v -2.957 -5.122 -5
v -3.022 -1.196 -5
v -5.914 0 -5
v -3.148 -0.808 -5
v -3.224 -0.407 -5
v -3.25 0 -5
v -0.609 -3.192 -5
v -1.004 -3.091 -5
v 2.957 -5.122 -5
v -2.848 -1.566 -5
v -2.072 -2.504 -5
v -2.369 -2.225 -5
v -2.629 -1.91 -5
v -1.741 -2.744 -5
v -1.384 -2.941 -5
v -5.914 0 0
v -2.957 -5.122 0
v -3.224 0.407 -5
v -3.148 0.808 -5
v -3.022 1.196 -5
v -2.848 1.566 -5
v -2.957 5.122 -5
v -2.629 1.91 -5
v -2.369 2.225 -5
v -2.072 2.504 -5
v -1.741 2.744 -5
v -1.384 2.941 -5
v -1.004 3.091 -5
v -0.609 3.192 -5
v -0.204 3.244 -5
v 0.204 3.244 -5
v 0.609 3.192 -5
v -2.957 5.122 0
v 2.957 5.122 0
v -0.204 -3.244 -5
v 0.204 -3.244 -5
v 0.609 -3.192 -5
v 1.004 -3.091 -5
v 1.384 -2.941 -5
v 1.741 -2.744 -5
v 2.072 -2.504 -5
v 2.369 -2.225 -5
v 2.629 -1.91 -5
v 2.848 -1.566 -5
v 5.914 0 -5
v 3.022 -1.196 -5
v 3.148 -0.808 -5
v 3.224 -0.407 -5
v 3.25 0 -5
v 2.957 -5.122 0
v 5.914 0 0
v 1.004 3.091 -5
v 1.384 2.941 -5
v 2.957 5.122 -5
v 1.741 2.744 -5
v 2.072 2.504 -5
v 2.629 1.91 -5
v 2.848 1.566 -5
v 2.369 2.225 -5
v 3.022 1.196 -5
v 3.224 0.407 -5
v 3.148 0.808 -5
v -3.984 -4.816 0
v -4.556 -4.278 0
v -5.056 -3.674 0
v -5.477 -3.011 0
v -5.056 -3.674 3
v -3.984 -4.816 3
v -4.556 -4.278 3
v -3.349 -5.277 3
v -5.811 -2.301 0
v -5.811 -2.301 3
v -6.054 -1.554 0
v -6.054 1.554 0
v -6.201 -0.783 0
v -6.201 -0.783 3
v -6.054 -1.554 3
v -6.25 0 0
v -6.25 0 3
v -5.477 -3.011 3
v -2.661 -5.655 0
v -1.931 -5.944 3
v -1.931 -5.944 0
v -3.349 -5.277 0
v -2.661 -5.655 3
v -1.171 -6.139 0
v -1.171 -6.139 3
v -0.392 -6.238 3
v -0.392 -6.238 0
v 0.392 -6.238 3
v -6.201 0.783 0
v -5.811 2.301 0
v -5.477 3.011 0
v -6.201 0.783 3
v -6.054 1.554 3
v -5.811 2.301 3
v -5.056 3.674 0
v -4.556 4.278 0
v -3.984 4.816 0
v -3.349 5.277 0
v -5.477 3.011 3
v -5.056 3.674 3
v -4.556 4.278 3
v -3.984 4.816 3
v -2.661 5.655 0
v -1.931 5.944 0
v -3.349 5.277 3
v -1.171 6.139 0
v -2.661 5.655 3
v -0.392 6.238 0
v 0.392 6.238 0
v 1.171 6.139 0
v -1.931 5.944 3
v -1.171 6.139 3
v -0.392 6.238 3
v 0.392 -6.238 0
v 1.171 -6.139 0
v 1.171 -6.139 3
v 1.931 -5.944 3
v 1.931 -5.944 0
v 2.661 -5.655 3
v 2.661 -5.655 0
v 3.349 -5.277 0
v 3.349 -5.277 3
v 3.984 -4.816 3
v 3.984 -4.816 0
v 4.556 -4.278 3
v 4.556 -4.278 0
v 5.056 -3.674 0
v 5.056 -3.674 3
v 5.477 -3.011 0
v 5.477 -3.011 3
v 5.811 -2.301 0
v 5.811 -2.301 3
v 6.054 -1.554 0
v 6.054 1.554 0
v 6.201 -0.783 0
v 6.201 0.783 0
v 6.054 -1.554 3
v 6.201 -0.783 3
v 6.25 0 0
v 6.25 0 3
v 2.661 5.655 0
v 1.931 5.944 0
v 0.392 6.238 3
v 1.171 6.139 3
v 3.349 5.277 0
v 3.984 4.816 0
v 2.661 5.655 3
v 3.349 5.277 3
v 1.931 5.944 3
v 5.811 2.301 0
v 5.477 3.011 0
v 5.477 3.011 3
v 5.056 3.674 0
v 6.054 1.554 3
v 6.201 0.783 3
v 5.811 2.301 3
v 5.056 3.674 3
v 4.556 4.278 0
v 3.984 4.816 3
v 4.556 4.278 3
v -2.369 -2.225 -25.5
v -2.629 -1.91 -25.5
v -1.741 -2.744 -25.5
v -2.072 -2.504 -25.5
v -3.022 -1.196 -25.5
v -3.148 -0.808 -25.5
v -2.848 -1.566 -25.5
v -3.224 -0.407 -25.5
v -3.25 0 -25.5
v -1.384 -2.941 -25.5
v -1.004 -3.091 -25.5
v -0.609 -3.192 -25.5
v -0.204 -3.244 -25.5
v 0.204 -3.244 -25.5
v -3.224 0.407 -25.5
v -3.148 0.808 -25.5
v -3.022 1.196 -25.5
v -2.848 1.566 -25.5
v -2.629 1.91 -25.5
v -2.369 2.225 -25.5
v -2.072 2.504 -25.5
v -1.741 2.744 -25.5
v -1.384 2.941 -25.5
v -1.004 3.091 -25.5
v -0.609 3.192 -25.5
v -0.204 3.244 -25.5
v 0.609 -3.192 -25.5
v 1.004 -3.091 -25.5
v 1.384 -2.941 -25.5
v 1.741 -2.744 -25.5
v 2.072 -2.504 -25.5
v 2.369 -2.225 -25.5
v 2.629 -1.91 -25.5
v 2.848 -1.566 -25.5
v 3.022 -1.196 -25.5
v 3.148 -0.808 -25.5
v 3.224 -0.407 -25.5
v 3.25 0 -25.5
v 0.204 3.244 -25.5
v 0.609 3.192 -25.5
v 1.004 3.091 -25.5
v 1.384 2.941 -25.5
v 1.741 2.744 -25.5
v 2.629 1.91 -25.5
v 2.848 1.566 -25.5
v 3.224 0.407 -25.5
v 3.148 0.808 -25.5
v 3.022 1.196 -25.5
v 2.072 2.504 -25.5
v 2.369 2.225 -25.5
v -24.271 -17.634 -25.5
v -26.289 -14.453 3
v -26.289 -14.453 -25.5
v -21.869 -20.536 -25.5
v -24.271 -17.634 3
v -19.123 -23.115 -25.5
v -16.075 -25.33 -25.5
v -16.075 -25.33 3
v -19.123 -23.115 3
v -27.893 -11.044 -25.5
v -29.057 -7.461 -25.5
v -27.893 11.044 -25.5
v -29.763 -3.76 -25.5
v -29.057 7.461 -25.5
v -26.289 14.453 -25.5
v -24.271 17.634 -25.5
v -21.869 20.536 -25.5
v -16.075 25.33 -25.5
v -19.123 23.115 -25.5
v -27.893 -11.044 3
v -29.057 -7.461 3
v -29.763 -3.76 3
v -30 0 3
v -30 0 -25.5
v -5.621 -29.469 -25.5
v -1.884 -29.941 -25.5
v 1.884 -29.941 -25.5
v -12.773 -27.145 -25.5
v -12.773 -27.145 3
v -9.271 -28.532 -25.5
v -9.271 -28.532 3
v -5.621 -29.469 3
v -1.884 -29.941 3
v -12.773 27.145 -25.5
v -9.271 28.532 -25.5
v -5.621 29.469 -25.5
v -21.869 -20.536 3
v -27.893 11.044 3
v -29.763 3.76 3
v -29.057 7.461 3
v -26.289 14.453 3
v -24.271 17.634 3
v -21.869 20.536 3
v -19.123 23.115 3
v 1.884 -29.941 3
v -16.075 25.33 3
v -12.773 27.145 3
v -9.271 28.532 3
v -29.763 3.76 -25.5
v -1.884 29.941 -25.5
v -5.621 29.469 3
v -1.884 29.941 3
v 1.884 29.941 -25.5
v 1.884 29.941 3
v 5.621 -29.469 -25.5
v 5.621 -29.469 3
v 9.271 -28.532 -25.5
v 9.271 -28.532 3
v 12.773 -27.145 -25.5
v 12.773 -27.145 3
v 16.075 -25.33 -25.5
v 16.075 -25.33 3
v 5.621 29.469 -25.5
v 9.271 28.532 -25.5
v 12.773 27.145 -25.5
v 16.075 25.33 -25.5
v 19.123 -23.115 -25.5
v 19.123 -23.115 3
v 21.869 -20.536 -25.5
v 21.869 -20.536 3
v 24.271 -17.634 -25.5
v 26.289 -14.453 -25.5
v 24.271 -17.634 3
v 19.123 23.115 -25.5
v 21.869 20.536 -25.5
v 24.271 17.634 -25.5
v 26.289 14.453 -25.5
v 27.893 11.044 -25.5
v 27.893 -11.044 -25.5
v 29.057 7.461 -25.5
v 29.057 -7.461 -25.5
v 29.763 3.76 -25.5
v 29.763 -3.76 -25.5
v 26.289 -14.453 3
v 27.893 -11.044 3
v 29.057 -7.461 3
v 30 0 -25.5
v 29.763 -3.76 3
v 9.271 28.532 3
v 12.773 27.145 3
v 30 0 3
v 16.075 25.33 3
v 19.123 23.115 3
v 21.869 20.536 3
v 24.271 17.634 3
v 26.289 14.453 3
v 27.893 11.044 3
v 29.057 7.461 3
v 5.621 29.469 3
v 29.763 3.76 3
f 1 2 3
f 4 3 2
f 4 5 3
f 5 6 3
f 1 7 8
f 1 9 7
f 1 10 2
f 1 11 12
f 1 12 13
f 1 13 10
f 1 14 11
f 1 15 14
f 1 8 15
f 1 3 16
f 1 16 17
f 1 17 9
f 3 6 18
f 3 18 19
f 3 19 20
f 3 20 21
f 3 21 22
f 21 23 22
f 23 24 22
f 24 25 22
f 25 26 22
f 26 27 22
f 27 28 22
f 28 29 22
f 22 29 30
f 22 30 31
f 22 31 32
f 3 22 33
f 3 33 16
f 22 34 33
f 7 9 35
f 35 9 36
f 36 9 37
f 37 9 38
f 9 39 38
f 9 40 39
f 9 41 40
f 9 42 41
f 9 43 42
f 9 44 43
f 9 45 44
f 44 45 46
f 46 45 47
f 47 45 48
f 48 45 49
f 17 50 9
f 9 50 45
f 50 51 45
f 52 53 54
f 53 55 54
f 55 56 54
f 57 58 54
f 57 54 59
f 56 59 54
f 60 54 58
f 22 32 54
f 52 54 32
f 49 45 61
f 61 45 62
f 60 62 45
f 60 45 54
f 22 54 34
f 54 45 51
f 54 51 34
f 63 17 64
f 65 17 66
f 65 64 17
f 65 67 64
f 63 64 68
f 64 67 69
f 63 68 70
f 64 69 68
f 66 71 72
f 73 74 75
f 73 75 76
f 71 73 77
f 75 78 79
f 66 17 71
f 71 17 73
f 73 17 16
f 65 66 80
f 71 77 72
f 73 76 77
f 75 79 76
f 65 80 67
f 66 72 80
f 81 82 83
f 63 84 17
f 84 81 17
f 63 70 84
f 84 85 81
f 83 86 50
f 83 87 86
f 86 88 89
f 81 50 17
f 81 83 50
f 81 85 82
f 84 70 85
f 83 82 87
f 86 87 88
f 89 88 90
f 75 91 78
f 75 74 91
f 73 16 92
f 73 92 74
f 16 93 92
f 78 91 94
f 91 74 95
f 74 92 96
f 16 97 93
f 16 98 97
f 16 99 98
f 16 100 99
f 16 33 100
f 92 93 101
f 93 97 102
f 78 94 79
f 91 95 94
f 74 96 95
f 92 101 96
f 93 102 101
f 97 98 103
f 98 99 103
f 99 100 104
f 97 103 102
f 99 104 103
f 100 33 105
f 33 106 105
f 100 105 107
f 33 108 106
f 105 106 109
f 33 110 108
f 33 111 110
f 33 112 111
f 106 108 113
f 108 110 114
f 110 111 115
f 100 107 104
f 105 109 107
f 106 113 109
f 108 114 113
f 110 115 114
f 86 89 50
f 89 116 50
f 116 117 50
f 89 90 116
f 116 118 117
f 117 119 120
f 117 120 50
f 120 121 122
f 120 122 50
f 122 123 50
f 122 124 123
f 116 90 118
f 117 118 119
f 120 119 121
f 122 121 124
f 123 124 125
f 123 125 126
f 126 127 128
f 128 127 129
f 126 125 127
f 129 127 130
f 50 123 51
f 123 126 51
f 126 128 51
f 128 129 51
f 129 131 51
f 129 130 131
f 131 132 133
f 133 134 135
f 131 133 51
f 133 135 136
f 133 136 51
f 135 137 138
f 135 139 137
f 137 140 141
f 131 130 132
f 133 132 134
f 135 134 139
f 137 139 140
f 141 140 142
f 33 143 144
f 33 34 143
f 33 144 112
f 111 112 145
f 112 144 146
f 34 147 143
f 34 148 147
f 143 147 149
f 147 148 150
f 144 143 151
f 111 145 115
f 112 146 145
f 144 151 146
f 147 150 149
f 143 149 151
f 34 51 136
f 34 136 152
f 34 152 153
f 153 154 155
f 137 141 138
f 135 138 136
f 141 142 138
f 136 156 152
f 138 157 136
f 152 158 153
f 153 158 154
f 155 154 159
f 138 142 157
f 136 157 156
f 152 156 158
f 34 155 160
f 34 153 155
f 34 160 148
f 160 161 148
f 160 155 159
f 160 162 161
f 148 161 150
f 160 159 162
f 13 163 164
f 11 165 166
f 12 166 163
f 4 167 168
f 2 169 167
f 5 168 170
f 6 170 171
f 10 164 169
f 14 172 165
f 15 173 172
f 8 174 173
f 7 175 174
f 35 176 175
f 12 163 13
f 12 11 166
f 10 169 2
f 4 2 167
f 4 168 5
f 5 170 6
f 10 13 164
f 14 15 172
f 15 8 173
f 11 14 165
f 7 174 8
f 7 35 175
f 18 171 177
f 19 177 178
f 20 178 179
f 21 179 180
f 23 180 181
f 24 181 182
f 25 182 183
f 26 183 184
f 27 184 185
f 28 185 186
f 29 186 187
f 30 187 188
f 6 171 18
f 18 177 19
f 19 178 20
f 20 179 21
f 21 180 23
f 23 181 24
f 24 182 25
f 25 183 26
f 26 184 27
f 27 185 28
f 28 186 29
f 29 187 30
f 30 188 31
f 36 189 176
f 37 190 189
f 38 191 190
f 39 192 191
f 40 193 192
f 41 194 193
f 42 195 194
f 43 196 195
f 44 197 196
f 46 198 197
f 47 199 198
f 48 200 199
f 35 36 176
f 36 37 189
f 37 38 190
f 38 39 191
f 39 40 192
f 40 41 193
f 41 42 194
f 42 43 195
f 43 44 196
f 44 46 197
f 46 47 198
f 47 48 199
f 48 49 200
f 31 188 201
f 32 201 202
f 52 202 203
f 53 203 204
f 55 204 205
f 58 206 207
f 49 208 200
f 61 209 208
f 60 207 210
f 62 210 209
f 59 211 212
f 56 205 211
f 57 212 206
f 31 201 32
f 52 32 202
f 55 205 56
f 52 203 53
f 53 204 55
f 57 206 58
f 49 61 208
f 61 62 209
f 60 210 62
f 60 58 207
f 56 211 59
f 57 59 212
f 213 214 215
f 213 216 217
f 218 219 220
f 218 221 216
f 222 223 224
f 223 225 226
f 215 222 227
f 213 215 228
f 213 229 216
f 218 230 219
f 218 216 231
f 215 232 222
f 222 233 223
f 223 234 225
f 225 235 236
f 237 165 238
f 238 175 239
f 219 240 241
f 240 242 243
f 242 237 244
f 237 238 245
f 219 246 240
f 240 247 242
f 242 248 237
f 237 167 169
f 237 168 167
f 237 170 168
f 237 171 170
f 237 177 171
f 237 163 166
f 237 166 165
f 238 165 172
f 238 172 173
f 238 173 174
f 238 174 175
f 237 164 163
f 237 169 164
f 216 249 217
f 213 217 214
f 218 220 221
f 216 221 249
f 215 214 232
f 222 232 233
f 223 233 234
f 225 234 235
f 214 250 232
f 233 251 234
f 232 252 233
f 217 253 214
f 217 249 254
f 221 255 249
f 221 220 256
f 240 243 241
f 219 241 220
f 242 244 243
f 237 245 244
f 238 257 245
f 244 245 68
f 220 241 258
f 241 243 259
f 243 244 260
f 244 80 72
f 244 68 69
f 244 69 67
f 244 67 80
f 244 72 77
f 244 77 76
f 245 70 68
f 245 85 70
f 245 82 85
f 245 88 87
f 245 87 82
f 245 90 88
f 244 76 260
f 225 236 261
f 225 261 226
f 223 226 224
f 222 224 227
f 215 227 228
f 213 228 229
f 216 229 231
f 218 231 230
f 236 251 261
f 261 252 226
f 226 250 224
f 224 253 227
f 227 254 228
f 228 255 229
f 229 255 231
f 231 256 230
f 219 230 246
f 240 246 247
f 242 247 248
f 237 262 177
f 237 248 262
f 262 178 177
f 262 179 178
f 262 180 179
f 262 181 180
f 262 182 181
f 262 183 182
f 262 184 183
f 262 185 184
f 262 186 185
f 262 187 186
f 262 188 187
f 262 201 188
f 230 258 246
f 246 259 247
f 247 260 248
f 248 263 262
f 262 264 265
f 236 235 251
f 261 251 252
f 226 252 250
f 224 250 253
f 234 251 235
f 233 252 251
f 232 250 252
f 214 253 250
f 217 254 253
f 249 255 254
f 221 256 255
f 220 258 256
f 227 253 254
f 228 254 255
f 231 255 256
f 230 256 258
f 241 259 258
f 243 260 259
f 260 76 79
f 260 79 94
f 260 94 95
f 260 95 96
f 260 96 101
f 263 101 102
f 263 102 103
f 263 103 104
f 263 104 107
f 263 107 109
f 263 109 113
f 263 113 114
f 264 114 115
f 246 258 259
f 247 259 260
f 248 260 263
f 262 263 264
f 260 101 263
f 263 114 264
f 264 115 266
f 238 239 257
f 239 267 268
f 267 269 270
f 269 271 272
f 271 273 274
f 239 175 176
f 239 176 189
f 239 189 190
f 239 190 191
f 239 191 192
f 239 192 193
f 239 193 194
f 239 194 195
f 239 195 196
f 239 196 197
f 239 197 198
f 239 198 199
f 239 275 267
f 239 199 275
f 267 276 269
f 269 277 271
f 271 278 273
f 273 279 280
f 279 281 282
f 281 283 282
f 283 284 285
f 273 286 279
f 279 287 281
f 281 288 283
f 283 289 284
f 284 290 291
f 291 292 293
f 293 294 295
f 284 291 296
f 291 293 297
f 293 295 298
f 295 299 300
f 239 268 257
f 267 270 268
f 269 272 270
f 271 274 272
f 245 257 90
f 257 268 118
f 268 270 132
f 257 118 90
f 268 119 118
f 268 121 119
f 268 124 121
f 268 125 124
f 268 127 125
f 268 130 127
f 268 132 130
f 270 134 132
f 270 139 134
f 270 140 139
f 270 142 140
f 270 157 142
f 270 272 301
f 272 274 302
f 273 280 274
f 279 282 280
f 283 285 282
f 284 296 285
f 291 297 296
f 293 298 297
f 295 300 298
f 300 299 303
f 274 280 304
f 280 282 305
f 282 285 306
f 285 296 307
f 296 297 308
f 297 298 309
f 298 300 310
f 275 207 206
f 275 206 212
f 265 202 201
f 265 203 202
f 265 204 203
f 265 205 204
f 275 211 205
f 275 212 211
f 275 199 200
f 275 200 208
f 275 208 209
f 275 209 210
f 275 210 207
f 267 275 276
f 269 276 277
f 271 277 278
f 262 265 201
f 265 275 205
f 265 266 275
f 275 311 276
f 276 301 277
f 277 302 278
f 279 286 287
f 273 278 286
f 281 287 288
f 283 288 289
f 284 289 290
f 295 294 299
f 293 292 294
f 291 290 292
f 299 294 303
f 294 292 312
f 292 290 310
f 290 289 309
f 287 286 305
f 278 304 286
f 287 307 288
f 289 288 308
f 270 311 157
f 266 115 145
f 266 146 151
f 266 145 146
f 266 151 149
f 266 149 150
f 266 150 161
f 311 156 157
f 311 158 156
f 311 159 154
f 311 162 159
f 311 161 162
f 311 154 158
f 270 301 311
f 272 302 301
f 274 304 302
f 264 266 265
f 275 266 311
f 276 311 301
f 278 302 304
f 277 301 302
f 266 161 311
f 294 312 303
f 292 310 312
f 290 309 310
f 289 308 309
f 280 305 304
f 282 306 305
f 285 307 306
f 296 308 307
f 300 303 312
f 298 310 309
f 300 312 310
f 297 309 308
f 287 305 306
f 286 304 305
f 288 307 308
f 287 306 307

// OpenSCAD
$fn = 50;

difference() {
	union() {
		translate(v = [0, 0, -25.5]) {
			cylinder(h = 28.5, r = 30.0);
		}
	}
	union() {
		translate(v = [0, 0, 0]) {
			rotate(a = [0, 0, 0]) {
				difference() {
					union() {
						translate(v = [0, 0, -5]) {
							linear_extrude(height = 5) {
								polygon(points = [[5.914249999999999, 0.0], [2.957125, 5.1218907443321156], [-2.9571249999999982, 5.1218907443321156], [-5.914249999999999, 7.242867331857232e-16], [-2.9571250000000022, -5.121890744332115], [2.9571249999999956, -5.121890744332118]]);
							}
						}
					}
					union();
				}
			}
		}
		#cylinder(h = 3, r = 6.25);
		#translate(v = [0, 0, -100.0]) {
			cylinder(h = 200, r = 3.25);
		}
	}
}
